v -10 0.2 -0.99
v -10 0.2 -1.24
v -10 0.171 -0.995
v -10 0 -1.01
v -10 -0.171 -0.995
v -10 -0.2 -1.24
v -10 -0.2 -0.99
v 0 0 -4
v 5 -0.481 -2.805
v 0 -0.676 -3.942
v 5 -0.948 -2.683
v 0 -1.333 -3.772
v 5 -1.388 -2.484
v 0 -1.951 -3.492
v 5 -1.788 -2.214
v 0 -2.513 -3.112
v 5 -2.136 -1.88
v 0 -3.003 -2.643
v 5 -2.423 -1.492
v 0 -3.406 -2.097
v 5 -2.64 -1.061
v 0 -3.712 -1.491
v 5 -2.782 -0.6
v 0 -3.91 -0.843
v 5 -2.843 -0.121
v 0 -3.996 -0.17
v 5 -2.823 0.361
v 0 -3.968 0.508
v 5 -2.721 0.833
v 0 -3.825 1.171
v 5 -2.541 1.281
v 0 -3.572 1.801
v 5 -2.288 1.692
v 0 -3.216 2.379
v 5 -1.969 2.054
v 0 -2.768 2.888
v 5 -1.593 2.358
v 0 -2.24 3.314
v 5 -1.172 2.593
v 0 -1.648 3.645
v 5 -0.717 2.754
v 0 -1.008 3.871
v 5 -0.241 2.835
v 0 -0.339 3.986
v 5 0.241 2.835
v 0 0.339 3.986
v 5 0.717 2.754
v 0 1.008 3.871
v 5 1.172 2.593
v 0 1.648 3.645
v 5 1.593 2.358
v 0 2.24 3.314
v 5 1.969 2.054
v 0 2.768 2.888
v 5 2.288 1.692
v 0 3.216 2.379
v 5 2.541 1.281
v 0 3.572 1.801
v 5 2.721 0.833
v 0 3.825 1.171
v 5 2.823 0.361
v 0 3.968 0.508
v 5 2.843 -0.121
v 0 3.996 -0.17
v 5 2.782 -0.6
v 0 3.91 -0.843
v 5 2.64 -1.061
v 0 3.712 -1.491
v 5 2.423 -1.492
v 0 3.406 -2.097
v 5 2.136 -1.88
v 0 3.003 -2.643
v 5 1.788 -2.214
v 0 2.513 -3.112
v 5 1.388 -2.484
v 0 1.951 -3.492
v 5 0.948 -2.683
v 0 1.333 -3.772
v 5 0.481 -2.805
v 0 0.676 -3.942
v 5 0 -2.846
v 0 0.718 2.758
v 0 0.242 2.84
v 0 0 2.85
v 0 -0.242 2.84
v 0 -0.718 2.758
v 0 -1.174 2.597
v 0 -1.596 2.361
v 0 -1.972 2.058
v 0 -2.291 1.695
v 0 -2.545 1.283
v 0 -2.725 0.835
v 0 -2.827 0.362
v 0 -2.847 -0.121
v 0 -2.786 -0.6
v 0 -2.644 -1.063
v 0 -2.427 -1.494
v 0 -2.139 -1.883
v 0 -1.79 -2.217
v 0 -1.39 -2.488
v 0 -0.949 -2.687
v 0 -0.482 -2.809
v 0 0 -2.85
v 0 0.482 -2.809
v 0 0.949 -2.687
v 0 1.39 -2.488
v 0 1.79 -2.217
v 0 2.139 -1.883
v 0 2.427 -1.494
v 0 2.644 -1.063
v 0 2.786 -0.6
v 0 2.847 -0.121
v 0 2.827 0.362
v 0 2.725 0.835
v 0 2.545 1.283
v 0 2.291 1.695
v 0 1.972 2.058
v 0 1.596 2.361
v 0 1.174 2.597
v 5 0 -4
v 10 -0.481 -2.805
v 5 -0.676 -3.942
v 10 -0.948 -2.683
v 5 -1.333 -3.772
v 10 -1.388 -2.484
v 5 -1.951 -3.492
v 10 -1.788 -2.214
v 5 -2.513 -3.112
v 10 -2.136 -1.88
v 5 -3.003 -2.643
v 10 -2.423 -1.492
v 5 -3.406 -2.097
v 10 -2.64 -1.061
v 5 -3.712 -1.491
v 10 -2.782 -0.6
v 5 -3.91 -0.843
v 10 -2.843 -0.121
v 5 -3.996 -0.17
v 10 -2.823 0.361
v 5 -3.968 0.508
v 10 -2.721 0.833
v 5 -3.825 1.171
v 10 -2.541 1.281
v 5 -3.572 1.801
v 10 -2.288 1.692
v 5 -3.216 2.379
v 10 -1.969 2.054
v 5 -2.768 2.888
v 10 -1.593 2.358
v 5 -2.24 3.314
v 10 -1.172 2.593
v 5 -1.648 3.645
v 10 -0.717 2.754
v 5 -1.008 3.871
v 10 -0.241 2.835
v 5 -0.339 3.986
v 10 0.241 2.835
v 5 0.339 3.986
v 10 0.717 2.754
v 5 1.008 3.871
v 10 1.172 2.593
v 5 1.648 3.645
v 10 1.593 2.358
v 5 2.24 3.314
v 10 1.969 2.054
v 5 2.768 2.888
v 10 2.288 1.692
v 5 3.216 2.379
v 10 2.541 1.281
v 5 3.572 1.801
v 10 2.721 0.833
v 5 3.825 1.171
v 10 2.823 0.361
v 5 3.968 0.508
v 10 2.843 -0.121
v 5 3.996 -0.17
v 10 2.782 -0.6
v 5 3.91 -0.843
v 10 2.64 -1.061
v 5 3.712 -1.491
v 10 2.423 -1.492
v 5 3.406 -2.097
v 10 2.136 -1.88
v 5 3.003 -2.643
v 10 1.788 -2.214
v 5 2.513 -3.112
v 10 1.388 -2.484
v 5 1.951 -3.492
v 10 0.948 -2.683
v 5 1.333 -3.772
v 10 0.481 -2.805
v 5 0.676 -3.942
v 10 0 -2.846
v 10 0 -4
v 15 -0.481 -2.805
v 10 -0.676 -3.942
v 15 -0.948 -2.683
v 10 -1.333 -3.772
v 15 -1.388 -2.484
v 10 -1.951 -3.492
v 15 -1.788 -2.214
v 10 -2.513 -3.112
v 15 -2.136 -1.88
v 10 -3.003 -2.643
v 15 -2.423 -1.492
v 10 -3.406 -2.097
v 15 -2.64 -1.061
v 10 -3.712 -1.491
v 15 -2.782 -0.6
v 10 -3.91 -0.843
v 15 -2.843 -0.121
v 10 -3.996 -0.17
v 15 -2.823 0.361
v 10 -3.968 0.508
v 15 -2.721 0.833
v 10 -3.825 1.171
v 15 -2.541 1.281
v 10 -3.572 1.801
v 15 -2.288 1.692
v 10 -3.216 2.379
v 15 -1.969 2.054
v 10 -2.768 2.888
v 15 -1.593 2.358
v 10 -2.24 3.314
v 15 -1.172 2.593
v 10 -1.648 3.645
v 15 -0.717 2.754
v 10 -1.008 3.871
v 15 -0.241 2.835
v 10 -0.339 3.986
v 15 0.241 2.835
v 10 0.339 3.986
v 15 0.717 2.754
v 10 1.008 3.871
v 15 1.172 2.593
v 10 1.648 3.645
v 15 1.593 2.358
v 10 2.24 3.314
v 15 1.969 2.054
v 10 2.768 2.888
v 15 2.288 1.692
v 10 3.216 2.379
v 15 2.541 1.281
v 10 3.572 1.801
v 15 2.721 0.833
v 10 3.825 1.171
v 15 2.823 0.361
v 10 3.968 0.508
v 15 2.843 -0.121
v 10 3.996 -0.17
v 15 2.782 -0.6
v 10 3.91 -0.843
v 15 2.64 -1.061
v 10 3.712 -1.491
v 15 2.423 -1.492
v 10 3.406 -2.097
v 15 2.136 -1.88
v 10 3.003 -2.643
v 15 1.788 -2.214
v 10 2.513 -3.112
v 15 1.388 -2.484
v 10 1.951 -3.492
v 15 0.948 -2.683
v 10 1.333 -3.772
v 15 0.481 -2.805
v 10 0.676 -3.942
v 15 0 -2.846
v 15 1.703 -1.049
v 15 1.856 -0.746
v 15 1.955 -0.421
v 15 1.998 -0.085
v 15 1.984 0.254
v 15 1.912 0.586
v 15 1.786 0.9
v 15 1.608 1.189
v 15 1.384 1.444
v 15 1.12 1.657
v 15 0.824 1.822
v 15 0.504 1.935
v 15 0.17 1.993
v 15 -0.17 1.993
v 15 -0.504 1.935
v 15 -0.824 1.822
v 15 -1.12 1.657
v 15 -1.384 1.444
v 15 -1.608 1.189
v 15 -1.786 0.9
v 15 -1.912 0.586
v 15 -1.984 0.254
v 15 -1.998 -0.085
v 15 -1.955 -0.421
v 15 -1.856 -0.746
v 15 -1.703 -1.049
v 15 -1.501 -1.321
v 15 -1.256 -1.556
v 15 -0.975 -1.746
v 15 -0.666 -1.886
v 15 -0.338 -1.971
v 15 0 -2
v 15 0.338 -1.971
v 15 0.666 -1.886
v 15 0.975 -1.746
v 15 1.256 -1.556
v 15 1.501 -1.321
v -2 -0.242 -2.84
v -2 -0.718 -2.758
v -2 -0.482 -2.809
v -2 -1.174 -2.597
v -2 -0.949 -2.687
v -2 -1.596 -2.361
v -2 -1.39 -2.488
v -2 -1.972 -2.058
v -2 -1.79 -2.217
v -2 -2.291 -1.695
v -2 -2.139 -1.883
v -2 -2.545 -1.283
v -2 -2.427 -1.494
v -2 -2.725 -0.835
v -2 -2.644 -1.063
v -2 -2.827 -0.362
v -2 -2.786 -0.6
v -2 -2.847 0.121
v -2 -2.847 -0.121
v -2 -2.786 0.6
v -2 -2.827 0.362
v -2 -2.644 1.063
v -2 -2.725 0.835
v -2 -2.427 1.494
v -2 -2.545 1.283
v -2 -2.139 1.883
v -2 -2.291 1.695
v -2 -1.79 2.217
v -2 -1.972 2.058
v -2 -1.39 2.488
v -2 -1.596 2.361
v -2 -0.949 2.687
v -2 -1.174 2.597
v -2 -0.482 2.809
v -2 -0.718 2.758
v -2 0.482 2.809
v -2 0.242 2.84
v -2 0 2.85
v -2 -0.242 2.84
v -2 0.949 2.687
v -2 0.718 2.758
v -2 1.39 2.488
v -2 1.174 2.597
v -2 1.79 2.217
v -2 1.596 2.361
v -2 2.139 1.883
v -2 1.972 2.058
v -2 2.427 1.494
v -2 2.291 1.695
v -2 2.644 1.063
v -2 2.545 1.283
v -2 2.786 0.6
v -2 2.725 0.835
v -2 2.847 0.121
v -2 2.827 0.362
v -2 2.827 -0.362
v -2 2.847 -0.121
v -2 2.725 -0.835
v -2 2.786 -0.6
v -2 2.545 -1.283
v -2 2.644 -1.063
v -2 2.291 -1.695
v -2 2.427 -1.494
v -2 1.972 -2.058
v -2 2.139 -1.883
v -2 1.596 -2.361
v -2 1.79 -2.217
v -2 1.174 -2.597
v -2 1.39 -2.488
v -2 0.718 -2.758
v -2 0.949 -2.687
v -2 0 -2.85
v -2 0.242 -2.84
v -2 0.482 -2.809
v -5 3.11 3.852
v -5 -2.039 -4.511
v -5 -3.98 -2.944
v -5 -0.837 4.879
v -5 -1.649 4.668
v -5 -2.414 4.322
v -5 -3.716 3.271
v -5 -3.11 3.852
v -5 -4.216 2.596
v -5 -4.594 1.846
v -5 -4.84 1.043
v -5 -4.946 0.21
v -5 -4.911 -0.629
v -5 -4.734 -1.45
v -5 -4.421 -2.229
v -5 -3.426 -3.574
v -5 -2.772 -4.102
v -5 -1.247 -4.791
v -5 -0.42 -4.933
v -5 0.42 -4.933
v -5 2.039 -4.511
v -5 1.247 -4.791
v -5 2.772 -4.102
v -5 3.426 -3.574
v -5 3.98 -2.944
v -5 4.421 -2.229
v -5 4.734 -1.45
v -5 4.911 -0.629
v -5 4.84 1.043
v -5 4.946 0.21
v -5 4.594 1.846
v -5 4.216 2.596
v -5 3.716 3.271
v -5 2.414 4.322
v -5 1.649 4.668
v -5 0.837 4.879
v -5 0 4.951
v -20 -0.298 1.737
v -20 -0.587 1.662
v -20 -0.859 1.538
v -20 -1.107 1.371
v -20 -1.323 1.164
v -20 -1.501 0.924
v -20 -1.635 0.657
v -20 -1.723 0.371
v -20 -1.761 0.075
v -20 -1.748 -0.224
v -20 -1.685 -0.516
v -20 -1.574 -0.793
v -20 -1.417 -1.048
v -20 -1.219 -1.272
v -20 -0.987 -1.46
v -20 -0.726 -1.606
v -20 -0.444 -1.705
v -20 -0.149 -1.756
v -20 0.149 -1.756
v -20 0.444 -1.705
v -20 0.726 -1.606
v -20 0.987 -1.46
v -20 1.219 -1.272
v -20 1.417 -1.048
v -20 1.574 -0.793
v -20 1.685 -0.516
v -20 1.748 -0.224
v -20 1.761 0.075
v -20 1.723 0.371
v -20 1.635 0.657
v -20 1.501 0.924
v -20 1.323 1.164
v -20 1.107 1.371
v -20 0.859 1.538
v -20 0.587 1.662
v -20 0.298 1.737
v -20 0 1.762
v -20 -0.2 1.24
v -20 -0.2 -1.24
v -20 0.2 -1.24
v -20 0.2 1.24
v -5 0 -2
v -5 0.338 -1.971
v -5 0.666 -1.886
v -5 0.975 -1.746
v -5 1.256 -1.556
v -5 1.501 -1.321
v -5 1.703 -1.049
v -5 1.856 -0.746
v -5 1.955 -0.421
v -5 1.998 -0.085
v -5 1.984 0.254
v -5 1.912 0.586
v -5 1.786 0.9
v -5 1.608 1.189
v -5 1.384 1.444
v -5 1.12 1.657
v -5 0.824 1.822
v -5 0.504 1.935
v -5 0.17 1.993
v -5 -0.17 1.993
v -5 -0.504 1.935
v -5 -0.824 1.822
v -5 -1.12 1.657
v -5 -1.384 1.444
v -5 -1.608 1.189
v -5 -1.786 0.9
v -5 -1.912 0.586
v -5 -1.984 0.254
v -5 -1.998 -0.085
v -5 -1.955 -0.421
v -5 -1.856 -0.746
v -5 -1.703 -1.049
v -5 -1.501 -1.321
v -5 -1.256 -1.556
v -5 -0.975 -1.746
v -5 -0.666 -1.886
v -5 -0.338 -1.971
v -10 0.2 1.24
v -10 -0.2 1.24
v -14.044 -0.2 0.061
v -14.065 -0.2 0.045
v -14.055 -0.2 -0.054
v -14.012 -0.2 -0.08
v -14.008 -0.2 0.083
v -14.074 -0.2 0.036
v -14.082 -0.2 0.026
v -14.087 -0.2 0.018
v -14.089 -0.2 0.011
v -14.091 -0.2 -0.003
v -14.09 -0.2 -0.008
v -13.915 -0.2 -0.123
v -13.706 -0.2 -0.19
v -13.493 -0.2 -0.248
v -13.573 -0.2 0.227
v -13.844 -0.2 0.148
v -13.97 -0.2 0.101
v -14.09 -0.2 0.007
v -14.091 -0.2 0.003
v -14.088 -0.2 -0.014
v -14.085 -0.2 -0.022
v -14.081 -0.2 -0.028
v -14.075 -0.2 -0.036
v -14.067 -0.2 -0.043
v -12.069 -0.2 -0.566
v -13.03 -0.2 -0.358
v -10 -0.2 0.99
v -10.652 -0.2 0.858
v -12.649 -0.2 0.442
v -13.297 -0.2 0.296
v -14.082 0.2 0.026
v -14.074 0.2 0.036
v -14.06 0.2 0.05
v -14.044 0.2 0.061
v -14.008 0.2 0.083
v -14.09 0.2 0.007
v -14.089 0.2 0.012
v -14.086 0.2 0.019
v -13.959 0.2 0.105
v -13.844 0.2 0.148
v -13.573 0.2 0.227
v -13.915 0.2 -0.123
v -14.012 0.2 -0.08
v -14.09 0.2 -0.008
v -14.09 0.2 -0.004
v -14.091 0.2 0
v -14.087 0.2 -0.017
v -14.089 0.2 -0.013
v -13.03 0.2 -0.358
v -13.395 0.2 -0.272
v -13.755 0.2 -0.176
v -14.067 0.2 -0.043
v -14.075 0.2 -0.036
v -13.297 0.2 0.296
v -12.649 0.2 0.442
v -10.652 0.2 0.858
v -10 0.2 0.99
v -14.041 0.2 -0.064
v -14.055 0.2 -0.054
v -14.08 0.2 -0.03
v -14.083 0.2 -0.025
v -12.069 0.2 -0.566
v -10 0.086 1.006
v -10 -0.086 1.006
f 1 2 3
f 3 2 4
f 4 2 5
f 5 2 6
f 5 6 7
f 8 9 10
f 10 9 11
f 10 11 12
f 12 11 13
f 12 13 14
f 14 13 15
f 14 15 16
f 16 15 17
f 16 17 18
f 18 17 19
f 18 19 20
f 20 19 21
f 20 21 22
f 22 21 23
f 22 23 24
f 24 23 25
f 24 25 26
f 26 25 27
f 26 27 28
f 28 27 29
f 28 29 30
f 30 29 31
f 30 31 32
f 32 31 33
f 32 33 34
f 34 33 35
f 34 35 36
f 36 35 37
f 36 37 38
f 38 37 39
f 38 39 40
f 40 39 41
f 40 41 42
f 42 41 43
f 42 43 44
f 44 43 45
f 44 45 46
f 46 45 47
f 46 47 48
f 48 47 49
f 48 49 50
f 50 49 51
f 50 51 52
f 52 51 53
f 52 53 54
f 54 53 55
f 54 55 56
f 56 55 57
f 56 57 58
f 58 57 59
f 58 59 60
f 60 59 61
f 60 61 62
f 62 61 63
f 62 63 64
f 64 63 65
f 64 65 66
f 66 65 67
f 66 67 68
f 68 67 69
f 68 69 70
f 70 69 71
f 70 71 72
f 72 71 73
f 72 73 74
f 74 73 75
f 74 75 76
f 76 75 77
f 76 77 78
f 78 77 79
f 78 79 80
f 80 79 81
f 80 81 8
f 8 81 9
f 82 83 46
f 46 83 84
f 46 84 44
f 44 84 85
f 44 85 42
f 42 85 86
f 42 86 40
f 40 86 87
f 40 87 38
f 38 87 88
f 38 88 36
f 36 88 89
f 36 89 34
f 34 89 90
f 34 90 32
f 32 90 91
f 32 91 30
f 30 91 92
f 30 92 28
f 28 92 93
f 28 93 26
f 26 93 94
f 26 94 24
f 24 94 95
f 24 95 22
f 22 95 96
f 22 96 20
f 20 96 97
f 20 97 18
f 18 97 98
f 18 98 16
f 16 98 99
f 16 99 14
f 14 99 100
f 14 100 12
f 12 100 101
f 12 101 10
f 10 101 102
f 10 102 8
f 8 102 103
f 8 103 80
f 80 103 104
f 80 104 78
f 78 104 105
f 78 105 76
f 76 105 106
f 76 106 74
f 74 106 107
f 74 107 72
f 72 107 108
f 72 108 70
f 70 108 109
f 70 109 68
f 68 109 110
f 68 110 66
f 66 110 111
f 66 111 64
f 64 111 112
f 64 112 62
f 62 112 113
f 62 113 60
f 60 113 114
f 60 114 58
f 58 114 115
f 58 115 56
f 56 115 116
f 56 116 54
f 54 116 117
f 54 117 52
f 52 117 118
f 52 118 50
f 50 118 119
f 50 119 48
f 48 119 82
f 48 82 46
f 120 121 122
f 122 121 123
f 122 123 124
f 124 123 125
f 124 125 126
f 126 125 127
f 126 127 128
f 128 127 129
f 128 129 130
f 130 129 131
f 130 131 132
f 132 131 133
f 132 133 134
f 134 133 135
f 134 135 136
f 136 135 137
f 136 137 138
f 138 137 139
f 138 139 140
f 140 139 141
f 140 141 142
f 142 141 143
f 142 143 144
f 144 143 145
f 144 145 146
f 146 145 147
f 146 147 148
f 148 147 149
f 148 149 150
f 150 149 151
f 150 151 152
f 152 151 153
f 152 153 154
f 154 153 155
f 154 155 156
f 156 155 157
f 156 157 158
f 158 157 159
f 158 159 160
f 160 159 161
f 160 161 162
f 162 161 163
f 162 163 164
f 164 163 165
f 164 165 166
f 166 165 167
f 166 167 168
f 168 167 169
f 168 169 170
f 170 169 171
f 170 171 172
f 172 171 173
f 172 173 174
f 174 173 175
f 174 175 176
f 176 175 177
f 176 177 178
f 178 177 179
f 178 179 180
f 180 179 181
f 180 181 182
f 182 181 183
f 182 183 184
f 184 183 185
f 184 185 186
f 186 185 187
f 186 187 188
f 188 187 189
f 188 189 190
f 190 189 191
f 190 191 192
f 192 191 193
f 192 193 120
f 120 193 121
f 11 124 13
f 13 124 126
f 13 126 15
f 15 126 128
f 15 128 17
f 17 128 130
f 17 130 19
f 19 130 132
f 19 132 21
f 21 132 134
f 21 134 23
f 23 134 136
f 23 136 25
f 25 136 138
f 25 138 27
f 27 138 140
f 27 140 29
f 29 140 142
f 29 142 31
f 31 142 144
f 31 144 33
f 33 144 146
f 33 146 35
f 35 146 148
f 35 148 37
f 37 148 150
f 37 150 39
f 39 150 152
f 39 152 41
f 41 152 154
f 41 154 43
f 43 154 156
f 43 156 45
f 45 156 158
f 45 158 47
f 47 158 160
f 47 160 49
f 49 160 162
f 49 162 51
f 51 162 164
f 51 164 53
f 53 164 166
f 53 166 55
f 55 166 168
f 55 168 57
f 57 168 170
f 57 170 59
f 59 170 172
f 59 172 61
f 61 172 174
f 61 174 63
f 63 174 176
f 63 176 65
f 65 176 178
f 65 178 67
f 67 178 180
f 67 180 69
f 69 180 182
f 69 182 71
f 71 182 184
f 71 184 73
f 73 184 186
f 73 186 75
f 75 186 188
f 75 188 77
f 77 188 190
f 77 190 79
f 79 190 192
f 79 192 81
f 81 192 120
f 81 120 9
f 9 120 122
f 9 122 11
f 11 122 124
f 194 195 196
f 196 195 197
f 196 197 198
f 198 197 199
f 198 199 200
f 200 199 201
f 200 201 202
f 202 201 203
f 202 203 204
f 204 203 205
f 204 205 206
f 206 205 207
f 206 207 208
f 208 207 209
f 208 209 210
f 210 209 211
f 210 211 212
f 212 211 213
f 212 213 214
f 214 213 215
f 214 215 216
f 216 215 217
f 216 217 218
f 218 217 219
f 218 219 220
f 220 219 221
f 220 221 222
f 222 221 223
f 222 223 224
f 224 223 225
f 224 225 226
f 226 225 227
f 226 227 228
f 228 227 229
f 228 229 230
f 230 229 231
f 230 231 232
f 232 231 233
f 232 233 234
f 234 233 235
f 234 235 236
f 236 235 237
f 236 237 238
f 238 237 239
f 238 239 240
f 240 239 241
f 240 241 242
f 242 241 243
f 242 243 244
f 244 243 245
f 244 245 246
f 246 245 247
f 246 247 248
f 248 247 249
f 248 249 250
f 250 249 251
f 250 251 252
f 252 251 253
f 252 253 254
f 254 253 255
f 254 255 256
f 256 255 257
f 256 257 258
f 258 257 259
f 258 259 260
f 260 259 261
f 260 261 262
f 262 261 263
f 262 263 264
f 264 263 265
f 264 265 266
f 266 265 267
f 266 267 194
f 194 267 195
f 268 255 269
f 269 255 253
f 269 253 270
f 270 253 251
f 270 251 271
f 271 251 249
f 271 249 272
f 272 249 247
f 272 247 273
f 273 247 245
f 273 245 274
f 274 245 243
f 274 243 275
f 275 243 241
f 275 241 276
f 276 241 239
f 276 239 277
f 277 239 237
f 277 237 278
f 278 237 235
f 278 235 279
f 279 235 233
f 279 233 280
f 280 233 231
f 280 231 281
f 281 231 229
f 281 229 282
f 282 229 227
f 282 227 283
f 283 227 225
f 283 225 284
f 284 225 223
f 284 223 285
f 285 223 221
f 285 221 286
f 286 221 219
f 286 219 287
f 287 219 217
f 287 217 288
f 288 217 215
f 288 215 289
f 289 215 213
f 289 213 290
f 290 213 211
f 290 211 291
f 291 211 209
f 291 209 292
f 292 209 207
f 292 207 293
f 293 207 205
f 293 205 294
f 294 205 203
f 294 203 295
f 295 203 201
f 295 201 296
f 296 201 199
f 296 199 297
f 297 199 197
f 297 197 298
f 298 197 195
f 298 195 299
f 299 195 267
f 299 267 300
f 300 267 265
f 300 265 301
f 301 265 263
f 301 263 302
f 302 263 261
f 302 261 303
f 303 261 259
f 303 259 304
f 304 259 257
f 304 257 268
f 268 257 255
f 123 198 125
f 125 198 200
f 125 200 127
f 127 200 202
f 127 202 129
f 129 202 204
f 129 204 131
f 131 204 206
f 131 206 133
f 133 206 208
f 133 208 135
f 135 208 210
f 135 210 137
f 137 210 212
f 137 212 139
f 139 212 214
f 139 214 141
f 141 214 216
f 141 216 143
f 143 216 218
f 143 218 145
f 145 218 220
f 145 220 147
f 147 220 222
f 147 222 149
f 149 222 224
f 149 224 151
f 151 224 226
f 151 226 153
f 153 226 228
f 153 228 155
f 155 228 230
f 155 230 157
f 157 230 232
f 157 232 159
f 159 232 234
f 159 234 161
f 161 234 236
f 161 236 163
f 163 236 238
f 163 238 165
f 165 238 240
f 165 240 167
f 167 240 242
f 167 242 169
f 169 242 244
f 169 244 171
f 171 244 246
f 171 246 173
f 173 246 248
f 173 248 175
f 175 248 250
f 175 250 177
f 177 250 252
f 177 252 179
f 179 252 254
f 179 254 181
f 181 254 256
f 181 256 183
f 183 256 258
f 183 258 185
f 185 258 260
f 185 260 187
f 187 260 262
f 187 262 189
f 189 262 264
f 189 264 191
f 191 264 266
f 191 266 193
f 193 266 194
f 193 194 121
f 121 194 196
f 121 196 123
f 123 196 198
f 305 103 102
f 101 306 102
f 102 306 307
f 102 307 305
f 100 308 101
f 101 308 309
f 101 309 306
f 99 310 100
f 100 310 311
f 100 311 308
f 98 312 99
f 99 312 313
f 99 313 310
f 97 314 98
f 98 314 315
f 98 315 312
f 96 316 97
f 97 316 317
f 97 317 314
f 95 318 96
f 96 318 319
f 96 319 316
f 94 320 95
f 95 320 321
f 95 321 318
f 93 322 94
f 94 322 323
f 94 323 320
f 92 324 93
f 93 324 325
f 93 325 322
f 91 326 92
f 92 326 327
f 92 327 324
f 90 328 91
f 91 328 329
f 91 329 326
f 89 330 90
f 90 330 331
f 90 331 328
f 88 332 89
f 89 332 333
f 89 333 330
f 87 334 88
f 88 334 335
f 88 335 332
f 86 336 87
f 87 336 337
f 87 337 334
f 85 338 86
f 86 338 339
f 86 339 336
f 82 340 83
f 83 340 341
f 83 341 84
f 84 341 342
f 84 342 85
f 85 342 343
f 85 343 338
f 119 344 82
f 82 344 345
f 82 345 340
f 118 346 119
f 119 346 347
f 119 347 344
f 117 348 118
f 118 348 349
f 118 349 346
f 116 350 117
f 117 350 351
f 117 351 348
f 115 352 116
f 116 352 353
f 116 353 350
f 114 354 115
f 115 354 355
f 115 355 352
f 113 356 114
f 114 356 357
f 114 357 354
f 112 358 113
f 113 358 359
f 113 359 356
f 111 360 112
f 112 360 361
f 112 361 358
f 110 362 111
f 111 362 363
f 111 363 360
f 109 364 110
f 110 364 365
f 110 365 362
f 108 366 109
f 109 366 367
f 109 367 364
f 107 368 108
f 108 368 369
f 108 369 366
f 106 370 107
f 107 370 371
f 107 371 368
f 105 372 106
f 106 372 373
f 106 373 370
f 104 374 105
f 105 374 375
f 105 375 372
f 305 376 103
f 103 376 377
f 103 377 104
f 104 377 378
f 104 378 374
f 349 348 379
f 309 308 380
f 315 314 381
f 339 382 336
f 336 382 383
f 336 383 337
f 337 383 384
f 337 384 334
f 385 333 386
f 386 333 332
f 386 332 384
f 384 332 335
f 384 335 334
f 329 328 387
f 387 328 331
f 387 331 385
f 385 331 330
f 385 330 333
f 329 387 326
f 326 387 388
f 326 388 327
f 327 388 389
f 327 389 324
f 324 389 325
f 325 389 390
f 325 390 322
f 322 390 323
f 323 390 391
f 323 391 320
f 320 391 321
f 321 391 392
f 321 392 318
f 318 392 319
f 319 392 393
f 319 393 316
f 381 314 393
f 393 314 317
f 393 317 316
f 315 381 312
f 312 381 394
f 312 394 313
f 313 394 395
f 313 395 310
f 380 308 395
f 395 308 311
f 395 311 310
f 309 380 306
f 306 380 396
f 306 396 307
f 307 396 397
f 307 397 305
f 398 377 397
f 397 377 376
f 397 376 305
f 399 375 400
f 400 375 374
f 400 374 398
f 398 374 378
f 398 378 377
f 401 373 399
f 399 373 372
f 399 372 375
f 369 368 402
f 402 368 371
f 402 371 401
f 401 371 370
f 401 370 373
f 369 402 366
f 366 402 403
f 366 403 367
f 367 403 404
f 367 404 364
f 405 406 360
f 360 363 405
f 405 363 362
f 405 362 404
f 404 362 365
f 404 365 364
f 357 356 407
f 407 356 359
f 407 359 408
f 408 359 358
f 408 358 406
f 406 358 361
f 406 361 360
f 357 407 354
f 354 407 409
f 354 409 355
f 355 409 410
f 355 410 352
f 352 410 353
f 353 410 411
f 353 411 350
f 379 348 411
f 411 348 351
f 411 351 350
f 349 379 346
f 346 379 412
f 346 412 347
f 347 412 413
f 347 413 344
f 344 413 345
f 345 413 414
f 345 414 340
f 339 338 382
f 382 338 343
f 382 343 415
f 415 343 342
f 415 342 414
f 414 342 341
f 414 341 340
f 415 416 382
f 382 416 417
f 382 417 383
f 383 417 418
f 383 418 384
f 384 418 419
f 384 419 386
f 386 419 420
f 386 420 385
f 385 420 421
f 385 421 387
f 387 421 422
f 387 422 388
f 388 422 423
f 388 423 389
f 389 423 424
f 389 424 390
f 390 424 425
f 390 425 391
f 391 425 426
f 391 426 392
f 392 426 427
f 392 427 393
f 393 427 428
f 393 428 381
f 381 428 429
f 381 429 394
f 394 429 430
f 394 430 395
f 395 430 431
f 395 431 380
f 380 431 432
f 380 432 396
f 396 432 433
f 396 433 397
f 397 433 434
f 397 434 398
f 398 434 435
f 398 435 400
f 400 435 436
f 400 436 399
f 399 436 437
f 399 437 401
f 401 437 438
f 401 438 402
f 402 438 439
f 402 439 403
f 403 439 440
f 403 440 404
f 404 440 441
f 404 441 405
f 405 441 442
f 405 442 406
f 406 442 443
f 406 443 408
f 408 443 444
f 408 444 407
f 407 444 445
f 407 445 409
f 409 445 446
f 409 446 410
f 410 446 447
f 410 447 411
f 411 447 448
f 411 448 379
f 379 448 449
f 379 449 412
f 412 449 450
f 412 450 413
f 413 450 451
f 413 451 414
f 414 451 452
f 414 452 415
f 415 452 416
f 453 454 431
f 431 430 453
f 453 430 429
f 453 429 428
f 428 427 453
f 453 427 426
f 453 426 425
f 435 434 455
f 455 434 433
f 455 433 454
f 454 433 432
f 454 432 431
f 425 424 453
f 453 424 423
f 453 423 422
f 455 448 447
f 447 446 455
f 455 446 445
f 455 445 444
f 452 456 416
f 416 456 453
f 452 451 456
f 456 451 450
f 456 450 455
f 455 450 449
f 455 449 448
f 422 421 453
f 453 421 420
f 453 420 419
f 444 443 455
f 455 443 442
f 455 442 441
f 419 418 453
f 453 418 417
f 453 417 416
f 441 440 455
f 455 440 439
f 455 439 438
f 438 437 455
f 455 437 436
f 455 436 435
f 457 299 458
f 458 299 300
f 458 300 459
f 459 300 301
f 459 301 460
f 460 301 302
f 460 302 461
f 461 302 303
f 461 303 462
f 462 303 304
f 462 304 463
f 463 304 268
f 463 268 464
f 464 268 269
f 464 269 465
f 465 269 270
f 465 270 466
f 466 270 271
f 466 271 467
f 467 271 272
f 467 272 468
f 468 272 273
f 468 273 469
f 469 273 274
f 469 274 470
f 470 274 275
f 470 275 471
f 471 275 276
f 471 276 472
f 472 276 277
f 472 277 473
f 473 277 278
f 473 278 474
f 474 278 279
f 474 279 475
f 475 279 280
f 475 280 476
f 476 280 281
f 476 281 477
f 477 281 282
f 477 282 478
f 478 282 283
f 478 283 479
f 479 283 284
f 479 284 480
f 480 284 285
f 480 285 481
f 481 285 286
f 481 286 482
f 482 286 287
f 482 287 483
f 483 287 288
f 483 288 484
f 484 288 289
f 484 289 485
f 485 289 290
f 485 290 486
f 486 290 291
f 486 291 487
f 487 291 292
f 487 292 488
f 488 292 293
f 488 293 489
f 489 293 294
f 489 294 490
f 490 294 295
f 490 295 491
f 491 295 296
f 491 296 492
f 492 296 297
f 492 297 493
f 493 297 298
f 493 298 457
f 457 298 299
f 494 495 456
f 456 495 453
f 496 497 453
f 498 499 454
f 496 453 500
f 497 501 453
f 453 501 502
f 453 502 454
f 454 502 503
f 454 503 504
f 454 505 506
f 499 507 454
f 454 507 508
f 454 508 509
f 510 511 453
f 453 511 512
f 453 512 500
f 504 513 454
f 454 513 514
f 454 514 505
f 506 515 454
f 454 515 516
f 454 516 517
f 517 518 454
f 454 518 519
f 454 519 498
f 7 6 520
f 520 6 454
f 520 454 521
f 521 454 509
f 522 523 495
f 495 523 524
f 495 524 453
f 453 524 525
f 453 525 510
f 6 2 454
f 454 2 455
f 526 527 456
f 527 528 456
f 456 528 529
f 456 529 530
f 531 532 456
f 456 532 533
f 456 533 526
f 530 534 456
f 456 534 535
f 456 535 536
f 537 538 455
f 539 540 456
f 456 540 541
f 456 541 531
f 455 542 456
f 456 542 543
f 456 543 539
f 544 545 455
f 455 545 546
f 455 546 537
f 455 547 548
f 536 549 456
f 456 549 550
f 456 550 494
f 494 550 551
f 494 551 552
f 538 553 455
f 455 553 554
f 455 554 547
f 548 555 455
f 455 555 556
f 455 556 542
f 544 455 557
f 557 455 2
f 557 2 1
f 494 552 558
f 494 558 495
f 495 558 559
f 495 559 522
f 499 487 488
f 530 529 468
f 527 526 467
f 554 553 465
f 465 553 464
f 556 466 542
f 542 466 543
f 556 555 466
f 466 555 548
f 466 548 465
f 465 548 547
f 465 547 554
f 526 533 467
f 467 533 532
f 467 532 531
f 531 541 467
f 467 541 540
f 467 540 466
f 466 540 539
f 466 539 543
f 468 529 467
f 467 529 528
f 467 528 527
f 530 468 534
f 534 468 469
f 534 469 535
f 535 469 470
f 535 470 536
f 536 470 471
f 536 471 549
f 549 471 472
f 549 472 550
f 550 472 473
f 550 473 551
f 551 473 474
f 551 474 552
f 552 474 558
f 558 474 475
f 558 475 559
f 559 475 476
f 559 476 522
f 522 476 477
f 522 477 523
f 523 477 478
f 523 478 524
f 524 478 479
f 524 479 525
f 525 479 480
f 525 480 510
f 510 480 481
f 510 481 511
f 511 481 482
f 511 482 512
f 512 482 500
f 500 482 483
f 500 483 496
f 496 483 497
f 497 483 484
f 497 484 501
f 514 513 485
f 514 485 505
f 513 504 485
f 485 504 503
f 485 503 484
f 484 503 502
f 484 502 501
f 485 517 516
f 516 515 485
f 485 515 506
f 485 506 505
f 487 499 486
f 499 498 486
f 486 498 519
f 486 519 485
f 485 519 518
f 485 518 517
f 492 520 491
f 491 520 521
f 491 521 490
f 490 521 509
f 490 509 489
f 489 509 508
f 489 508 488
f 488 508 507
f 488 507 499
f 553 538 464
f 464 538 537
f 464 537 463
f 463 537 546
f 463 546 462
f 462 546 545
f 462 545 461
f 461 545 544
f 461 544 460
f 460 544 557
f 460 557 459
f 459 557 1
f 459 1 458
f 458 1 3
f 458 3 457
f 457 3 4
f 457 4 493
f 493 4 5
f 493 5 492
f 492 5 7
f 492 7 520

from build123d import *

# Parameters (mm, degrees)
SKETCH1_R           = 4
BOSS_EXTRUDE1_DEPTH = 5
BOSS_EXTRUDE1_TAPER = 13
SKETCH2_R           = 4
BOSS_EXTRUDE2_DEPTH = 5
BOSS_EXTRUDE2_TAPER = 13
SKETCH3_R           = 4
BOSS_EXTRUDE3_DEPTH = 5
BOSS_EXTRUDE3_TAPER = 13
SKETCH4_R           = 2.85
BOSS_EXTRUDE4_DEPTH = 2
SKETCH5_R           = 2.85
BOSS_EXTRUDE5_DEPTH = 3
BOSS_EXTRUDE5_DRAFT = -35
SKETCH6_R           = 4.950622615
BOSS_EXTRUDE6_DEPTH = 15
BOSS_EXTRUDE6_TAPER = 12
SKETCH9_R           = 2
CUT_EXTRUDE1_DEPTH  = 20
SKETCH12_W          = 2.479913688
SKETCH12_H          = 0.4
CUT_EXTRUDE10_DEPTH = 10
SKETCH14_R          = 2
CUT_EXTRUDE11_DEPTH = 10
CUT_EXTRUDE11_DRAFT = -11.2


with BuildPart() as part:
    # Sketch1 → Boss-Extrude1 (new body)
    with BuildSketch(Plane(origin=(0, 0, 0), x_dir=(0, 0, -1), z_dir=(1, 0, 0))):
        Circle(SKETCH1_R)
    extrude(amount=BOSS_EXTRUDE1_DEPTH, taper=BOSS_EXTRUDE1_TAPER)

    # Sketch2 → Boss-Extrude2 (add)
    with BuildSketch(Plane(origin=(5, 0, 0), x_dir=(0, 0, -1), z_dir=(1, 0, 0))):
        Circle(SKETCH2_R)
    extrude(amount=BOSS_EXTRUDE2_DEPTH, taper=BOSS_EXTRUDE2_TAPER)

    # Sketch3 → Boss-Extrude3 (add)
    with BuildSketch(Plane(origin=(10, 0, 0), x_dir=(0, 0, -1), z_dir=(1, 0, 0))):
        Circle(SKETCH3_R)
    extrude(amount=BOSS_EXTRUDE3_DEPTH, taper=BOSS_EXTRUDE3_TAPER)

    # Sketch4 → Boss-Extrude4 (add)
    with BuildSketch(Plane.ZY):
        Circle(SKETCH4_R)
    extrude(amount=BOSS_EXTRUDE4_DEPTH)


with BuildPart() as boss_extrude5_tool:
    # Sketch5 → Boss-Extrude5 (with draft: the straight prism first)
    with BuildSketch(Plane.ZY.offset(2)):
        Circle(SKETCH5_R)
    extrude(amount=BOSS_EXTRUDE5_DEPTH)
    # Boss-Extrude5: the draft: its side faces are tilted about the plane it starts from
    boss_extrude5_sides = [boss_extrude5_tool.faces().sort_by_distance(p)[0] for p in [
        (-3.5, 0, -2.85),
    ]]
    draft(boss_extrude5_sides, Plane.ZY.offset(2), BOSS_EXTRUDE5_DRAFT)


with BuildPart() as part_1:
    add(part.part)

    # Boss-Extrude5: add boss_extrude5_tool
    add(boss_extrude5_tool.part)

    # Sketch6 → Boss-Extrude6 (add)
    with BuildSketch(Plane.ZY.offset(5)):
        Circle(SKETCH6_R)
    extrude(amount=BOSS_EXTRUDE6_DEPTH, taper=BOSS_EXTRUDE6_TAPER)

    # Sketch9 → Cut-Extrude1 (cut)
    with BuildSketch(Plane(origin=(15, 0, 0), x_dir=(0, 0, -1), z_dir=(1, 0, 0))):
        Circle(SKETCH9_R)
    extrude(amount=-CUT_EXTRUDE1_DEPTH, mode=Mode.SUBTRACT)

    # Sketch12 → Cut-Extrude10 (cut)
    with BuildSketch(Plane.ZY.offset(20)):
        Rectangle(SKETCH12_W, SKETCH12_H)
    extrude(amount=-CUT_EXTRUDE10_DEPTH, mode=Mode.SUBTRACT)


with BuildPart() as cut_extrude11_tool:
    # Sketch14 → Cut-Extrude11 (with draft: the straight prism first)
    with BuildSketch(Plane(origin=(-5, 0, 0), x_dir=(0, 0, -1), z_dir=(1, 0, 0))):
        Circle(SKETCH14_R)
    extrude(amount=-CUT_EXTRUDE11_DEPTH)
    # Cut-Extrude11: the draft: its side faces are tilted about the plane it starts from
    cut_extrude11_sides = [cut_extrude11_tool.faces().sort_by_distance(p)[0] for p in [
        (-10, 0, 2),
    ]]
    draft(cut_extrude11_sides, Plane(origin=(-5, 0, 0), x_dir=(0, 0, -1), z_dir=(1, 0, 0)), CUT_EXTRUDE11_DRAFT)


with BuildPart() as part_2:
    add(part_1.part)

    # Cut-Extrude11: cut by cut_extrude11_tool
    add(cut_extrude11_tool.part, mode=Mode.SUBTRACT)


solid = part_2.part
